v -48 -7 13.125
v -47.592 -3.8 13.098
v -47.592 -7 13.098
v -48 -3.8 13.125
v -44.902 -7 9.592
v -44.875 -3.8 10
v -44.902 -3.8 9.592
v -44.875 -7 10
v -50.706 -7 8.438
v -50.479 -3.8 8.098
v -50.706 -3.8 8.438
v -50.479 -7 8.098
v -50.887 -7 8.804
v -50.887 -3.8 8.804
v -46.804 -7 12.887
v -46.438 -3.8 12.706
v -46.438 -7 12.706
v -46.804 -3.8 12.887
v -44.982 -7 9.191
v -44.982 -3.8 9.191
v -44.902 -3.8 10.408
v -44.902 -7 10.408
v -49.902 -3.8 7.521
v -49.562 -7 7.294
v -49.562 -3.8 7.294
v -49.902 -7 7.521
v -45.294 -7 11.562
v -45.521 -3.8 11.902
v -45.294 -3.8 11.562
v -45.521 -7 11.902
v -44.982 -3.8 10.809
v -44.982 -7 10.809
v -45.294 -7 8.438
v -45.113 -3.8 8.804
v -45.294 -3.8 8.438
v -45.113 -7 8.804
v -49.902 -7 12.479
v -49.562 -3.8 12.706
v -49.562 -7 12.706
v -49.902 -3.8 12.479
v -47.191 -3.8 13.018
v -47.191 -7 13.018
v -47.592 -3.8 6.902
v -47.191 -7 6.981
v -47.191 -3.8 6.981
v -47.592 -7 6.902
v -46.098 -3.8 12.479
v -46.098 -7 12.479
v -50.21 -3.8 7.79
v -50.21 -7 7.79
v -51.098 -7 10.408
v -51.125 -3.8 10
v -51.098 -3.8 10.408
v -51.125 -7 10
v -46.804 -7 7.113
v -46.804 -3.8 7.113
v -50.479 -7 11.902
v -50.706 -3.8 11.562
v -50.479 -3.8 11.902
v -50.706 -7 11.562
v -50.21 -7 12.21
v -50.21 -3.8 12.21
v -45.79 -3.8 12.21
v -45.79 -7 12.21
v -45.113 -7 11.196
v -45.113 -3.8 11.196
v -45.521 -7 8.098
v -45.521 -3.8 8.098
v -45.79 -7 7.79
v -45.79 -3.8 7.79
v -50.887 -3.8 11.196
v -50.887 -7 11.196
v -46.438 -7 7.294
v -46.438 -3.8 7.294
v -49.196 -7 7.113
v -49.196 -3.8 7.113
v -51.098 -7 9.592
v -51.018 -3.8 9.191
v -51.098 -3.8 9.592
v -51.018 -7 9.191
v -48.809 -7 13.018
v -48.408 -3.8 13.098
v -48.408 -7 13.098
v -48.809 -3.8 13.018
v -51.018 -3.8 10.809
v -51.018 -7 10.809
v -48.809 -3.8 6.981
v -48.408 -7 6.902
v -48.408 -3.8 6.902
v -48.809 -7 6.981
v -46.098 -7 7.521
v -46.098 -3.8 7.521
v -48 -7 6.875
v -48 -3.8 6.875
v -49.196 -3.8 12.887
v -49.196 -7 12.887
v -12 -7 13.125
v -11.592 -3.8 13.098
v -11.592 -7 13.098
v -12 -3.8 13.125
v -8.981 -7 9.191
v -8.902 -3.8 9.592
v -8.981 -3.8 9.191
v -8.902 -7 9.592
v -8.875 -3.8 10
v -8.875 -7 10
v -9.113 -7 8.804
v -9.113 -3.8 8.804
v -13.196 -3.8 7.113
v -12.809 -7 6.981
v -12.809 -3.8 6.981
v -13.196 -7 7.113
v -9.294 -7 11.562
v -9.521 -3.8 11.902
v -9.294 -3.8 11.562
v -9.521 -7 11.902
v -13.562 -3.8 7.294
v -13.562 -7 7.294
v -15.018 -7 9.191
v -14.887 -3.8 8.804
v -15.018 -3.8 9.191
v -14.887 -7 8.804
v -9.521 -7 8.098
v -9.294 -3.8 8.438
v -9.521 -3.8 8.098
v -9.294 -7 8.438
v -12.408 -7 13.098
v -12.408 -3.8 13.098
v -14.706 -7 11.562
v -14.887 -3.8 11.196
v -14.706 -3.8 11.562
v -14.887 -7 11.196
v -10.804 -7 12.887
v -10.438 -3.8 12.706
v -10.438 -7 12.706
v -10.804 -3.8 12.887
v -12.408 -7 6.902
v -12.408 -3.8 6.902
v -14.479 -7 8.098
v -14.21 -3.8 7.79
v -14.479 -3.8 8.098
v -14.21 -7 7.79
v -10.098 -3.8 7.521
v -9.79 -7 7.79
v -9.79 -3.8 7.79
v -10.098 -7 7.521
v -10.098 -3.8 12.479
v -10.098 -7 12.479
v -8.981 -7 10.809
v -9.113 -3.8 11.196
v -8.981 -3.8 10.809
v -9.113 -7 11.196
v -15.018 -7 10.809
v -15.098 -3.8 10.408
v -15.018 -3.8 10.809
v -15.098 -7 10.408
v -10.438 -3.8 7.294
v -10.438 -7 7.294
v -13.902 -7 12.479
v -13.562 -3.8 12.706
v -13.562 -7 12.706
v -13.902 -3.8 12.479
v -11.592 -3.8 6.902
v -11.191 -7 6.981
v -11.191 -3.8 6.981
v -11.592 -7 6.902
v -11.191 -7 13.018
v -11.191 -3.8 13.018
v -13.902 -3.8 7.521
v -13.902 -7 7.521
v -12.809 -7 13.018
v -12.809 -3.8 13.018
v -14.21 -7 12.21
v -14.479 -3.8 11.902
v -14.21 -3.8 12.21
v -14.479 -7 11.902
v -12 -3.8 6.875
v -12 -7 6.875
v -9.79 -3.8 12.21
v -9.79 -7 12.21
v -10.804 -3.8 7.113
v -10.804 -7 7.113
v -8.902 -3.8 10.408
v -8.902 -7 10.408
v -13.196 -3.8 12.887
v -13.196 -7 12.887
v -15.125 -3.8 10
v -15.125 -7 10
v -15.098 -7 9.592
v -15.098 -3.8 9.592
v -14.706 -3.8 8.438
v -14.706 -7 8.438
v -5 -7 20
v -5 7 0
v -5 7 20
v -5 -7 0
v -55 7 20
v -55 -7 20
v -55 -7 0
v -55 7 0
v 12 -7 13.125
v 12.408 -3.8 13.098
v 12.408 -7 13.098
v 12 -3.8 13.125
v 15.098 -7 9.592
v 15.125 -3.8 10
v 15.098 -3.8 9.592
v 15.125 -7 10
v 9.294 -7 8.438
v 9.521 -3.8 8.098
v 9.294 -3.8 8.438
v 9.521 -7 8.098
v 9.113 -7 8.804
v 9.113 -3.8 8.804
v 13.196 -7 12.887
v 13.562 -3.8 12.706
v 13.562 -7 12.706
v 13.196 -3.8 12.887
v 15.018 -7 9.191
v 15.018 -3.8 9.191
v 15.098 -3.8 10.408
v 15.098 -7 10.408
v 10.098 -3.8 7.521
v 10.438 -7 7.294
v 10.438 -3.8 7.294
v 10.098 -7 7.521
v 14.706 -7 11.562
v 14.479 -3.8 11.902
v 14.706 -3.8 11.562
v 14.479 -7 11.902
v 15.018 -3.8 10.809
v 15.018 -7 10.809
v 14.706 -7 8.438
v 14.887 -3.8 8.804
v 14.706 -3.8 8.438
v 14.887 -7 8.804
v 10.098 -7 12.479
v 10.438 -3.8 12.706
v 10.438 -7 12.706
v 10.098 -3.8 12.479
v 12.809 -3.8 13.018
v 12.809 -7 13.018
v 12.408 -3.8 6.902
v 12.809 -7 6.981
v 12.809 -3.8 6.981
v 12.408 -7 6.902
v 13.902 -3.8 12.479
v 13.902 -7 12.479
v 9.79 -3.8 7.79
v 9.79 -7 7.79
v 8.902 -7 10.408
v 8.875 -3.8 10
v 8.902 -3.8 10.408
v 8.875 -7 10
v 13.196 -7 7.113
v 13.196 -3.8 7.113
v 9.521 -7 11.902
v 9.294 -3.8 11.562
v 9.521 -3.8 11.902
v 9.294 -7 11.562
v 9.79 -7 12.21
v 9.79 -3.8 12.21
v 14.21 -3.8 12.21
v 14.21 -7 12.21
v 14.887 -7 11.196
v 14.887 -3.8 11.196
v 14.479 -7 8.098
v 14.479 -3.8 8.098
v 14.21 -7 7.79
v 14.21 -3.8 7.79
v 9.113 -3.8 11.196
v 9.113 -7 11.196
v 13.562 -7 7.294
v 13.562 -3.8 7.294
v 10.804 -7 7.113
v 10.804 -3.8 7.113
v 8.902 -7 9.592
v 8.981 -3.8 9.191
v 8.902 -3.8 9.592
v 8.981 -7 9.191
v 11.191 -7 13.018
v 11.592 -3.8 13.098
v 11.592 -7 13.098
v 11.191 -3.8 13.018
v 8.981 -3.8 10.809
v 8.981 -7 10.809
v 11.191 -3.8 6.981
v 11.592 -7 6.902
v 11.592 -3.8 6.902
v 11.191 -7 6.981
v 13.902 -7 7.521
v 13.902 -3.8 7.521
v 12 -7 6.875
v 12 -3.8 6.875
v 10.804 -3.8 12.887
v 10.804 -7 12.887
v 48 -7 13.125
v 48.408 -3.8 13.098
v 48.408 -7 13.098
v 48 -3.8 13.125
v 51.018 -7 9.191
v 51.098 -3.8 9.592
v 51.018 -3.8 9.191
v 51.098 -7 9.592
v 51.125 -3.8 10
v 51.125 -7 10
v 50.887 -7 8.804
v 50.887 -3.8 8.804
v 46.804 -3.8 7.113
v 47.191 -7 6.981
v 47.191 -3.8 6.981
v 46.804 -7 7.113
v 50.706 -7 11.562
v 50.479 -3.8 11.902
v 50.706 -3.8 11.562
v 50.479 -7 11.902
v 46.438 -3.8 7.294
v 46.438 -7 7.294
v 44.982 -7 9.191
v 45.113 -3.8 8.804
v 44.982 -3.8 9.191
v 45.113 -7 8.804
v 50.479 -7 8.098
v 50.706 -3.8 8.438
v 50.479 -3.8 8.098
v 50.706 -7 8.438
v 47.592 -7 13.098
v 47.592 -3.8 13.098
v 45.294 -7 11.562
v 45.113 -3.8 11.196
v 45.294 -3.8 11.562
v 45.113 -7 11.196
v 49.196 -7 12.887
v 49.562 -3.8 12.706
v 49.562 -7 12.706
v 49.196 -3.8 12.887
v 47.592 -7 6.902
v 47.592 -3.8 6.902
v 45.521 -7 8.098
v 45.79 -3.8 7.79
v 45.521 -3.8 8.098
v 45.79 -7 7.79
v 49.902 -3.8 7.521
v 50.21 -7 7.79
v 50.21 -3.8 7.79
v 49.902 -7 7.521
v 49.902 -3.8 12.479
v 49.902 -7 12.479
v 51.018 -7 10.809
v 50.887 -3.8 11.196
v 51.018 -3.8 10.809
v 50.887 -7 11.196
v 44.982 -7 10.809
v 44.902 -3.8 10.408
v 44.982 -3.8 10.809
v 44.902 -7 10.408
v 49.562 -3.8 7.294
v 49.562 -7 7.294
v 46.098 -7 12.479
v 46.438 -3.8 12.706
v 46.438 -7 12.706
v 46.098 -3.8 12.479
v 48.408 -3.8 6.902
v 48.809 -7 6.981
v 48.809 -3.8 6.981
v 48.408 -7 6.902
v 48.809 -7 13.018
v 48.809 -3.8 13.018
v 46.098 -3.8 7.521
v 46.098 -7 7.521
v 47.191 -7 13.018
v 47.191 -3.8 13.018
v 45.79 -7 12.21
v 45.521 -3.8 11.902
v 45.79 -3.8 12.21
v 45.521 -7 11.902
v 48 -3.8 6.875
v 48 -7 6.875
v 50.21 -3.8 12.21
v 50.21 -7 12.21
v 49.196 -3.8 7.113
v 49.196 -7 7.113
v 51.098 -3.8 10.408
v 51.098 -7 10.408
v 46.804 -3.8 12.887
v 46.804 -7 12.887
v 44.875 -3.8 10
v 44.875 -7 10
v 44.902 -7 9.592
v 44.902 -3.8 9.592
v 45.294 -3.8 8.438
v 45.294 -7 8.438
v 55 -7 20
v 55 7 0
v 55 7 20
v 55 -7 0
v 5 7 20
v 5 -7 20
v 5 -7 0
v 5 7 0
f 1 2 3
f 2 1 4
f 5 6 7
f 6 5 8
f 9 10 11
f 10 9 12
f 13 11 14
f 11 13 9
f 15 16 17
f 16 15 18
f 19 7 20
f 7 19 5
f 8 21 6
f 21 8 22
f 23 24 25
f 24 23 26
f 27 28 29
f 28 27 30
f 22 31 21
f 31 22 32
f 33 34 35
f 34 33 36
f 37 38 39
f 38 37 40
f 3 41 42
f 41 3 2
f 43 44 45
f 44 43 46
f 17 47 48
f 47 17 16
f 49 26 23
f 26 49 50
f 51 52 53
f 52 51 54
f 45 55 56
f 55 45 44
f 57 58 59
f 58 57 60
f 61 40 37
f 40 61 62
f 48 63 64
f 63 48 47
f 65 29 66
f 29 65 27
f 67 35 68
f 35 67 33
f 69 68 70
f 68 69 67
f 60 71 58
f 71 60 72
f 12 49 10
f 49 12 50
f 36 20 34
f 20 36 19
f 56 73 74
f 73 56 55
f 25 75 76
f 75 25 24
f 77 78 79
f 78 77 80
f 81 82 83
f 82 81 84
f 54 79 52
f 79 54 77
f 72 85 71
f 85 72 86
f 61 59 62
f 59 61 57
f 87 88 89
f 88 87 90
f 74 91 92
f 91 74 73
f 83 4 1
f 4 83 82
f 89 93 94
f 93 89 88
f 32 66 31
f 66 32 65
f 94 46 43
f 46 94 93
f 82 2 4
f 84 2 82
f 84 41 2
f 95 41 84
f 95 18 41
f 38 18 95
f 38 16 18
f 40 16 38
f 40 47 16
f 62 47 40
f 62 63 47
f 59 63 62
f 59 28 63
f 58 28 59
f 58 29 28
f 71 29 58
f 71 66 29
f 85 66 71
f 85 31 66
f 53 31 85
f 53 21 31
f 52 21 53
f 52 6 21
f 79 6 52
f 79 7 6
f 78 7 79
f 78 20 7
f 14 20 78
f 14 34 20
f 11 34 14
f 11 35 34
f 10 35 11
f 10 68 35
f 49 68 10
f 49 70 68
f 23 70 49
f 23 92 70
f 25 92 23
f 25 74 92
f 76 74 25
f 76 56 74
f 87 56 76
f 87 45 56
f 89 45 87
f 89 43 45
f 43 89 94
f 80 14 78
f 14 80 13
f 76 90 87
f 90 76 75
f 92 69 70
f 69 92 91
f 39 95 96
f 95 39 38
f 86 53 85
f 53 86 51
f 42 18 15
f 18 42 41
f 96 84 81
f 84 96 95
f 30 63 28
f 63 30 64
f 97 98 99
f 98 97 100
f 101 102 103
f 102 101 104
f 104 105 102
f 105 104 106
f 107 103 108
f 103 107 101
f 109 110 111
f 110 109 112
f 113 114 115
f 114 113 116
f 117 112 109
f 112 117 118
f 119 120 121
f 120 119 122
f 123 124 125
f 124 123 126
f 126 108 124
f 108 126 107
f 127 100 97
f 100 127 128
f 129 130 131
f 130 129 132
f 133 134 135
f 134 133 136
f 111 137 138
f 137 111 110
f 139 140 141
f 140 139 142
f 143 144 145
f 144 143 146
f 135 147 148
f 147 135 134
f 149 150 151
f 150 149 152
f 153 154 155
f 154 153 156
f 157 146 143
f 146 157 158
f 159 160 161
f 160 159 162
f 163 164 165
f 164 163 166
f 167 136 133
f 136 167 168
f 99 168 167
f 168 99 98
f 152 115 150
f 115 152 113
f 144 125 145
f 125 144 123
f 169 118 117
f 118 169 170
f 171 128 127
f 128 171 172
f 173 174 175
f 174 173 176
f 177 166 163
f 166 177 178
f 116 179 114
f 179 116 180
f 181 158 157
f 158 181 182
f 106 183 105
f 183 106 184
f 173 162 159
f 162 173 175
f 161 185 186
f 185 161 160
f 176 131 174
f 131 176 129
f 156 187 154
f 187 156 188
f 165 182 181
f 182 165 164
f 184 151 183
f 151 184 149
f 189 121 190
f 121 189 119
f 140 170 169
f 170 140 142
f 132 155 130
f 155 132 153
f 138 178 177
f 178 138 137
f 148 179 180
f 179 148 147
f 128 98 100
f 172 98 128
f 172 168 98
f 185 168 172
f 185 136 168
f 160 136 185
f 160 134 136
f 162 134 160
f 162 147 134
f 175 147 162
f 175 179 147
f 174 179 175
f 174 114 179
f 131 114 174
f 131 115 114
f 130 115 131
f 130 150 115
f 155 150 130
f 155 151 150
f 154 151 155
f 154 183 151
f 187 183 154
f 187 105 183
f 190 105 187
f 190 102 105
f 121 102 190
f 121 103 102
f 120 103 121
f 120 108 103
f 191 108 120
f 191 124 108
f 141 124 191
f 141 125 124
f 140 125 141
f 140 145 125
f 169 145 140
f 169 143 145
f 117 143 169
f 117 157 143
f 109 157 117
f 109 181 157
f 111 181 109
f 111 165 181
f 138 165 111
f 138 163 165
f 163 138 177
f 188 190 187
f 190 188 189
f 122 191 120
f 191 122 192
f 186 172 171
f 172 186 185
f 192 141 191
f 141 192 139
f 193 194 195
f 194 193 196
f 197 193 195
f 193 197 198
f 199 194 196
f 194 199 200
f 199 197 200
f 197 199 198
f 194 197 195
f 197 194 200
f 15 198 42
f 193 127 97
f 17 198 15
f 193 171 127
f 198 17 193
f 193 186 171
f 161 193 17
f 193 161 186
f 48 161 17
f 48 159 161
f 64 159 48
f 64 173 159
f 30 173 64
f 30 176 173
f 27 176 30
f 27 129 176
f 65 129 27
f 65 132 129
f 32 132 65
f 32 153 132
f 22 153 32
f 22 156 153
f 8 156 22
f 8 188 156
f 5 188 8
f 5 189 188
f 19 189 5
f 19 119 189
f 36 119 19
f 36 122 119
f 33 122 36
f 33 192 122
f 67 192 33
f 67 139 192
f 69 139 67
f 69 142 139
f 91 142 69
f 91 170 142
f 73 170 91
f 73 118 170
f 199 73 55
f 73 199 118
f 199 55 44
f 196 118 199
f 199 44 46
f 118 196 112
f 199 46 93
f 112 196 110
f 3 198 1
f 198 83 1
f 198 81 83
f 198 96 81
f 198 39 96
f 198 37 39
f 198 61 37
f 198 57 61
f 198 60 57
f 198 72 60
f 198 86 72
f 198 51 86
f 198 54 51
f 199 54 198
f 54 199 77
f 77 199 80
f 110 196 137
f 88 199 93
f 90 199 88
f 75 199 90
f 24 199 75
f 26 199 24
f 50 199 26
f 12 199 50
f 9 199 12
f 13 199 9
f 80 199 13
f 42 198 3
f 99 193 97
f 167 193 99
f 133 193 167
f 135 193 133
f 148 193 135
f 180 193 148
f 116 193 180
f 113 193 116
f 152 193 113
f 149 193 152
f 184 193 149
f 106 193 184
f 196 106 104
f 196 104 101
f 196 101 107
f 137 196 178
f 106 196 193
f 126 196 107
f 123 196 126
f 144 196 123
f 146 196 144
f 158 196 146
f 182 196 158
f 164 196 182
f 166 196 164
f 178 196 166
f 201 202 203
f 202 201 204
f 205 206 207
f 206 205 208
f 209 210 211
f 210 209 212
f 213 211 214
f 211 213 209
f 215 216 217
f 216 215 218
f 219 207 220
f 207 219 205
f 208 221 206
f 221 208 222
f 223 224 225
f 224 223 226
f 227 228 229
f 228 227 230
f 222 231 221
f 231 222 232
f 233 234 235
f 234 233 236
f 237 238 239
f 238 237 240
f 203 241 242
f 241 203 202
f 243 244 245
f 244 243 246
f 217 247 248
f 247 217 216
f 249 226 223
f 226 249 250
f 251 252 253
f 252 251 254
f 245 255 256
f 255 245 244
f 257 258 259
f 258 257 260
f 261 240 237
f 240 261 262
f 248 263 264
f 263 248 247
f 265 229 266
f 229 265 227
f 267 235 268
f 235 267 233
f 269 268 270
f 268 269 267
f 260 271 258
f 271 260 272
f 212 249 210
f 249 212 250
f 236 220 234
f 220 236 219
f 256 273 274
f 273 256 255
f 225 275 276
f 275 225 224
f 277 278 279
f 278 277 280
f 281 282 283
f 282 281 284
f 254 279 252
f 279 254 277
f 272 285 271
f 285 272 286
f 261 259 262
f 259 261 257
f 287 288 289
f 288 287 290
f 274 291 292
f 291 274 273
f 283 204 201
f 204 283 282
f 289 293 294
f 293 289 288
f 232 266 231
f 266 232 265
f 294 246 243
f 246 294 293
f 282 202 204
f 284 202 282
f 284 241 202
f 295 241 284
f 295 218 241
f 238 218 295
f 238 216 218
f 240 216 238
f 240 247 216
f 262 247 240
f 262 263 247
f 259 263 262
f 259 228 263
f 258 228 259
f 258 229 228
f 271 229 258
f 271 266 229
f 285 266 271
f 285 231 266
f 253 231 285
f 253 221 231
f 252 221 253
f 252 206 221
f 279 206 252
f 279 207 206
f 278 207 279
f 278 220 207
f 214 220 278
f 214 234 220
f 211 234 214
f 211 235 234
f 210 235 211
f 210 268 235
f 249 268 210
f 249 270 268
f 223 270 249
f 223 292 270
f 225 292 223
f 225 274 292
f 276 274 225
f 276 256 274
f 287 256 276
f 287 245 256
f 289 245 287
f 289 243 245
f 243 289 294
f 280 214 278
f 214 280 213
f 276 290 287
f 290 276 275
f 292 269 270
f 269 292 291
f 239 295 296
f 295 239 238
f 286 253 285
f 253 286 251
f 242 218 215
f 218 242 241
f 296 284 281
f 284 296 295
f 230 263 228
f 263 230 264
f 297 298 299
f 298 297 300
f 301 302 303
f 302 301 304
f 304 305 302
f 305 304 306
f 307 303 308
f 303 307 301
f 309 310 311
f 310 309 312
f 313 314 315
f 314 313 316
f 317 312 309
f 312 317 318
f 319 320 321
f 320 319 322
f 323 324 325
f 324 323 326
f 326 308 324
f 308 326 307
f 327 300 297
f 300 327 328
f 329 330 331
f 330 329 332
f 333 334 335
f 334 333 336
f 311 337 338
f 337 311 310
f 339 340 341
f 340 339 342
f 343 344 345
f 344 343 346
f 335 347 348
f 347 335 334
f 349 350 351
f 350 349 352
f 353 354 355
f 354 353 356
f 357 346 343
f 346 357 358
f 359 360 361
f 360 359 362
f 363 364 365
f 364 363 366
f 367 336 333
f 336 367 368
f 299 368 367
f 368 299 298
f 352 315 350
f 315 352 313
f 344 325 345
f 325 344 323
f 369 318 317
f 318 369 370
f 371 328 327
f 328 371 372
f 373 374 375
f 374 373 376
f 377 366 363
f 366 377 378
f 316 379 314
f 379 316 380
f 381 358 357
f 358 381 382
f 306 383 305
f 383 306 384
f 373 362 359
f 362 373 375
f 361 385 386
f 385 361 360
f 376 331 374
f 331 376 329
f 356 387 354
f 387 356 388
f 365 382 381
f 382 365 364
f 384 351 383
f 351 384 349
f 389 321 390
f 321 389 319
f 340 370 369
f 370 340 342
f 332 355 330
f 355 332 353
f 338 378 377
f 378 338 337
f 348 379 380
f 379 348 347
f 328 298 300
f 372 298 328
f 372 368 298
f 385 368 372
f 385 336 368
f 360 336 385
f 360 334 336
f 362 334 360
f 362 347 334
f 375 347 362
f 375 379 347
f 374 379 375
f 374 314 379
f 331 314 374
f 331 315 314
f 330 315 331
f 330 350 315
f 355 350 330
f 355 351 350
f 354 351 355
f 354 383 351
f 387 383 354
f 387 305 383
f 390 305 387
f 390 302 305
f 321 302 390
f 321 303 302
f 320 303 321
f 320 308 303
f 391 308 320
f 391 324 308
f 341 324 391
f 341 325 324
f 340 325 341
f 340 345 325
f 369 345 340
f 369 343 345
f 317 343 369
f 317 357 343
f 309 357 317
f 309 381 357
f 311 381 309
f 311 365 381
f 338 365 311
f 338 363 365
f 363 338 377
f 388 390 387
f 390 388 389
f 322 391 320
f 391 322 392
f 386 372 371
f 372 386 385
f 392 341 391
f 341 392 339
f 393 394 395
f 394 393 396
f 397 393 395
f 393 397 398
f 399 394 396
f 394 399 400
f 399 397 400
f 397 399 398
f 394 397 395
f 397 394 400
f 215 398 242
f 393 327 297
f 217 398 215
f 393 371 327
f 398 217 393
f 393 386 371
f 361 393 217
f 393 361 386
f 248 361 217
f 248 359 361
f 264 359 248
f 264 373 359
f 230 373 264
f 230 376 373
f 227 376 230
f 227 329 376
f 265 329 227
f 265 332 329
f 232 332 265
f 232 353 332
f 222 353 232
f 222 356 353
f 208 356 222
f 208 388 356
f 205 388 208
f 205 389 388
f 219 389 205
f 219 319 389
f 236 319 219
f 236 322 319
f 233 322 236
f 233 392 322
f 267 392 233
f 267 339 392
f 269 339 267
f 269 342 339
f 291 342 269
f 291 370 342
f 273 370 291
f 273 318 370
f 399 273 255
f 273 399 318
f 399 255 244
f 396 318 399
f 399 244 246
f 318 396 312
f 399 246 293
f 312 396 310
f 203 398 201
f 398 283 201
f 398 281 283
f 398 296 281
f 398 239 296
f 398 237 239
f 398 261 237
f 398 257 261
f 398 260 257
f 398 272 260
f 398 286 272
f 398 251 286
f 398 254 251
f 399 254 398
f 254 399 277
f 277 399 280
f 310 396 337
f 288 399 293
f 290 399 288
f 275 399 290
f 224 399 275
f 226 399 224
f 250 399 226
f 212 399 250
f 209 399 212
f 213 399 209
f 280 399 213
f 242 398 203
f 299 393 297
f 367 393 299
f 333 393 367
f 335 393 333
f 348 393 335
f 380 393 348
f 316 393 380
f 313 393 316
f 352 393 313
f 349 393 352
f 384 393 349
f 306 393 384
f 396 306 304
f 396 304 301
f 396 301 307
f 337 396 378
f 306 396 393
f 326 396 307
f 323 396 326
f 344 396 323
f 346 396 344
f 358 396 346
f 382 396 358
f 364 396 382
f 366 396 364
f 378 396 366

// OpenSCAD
$fn = 48;

// Match the magnet dimensions in base_tile.scad.
magnet_diameter = 6;
magnet_thickness = 3;
magnet_clearance = 0.25;
magnet_extra_depth = 0.2;
magnet_spacing = 18;

piece_width = 50;
piece_depth = 14;
piece_height = 20;
print_spacing = 10;

module magnet_test_piece() {
    difference() {
        translate([-piece_width/2, -piece_depth/2, 0])
            cube([piece_width, piece_depth, piece_height]);

        for (x = [-magnet_spacing, magnet_spacing])
            translate([x, -piece_depth/2-0.05, piece_height/2])
                rotate([-90, 0, 0])
                    cylinder(
                        d=magnet_diameter+magnet_clearance,
                        h=magnet_thickness+magnet_extra_depth+0.05
                    );
    }
}

// Two separate pieces for a single print.
translate([-(piece_width+print_spacing)/2, 0, 0])
    magnet_test_piece();

translate([(piece_width+print_spacing)/2, 0, 0])
    magnet_test_piece();
